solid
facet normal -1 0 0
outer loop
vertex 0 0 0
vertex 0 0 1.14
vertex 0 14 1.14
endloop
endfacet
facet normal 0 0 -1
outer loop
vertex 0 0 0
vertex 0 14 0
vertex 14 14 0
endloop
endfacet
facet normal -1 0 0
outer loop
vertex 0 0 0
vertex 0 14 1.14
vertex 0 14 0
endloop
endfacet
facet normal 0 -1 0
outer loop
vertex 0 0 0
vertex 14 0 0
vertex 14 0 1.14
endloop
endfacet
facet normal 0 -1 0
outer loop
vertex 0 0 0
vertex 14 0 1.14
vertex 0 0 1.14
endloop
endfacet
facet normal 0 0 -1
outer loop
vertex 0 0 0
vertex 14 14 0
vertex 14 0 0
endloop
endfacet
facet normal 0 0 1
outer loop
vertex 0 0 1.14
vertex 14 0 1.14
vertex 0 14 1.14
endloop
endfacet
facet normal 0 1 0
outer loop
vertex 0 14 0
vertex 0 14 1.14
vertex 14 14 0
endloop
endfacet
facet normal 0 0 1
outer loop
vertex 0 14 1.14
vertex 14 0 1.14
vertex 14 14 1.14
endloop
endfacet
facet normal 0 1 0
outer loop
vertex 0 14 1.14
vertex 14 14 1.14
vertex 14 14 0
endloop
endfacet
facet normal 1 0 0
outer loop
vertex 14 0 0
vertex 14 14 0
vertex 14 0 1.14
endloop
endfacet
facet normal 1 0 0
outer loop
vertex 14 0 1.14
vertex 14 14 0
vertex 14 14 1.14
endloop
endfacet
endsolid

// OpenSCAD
/* Warning, this is a very basic generator with a lot of approximation 
input data : [TFBGA, HXX, 14x14x1.14mm, 323, , A, C04-00245A]
generated by com.zoubworld.electronics.cad.model3d.Basic
Date : Sun Feb 15 10:50:48 CET 2026
*/

//body
color("black")
translate([0,0,0])
cube([14.0,14.0,1.14], center=false);
